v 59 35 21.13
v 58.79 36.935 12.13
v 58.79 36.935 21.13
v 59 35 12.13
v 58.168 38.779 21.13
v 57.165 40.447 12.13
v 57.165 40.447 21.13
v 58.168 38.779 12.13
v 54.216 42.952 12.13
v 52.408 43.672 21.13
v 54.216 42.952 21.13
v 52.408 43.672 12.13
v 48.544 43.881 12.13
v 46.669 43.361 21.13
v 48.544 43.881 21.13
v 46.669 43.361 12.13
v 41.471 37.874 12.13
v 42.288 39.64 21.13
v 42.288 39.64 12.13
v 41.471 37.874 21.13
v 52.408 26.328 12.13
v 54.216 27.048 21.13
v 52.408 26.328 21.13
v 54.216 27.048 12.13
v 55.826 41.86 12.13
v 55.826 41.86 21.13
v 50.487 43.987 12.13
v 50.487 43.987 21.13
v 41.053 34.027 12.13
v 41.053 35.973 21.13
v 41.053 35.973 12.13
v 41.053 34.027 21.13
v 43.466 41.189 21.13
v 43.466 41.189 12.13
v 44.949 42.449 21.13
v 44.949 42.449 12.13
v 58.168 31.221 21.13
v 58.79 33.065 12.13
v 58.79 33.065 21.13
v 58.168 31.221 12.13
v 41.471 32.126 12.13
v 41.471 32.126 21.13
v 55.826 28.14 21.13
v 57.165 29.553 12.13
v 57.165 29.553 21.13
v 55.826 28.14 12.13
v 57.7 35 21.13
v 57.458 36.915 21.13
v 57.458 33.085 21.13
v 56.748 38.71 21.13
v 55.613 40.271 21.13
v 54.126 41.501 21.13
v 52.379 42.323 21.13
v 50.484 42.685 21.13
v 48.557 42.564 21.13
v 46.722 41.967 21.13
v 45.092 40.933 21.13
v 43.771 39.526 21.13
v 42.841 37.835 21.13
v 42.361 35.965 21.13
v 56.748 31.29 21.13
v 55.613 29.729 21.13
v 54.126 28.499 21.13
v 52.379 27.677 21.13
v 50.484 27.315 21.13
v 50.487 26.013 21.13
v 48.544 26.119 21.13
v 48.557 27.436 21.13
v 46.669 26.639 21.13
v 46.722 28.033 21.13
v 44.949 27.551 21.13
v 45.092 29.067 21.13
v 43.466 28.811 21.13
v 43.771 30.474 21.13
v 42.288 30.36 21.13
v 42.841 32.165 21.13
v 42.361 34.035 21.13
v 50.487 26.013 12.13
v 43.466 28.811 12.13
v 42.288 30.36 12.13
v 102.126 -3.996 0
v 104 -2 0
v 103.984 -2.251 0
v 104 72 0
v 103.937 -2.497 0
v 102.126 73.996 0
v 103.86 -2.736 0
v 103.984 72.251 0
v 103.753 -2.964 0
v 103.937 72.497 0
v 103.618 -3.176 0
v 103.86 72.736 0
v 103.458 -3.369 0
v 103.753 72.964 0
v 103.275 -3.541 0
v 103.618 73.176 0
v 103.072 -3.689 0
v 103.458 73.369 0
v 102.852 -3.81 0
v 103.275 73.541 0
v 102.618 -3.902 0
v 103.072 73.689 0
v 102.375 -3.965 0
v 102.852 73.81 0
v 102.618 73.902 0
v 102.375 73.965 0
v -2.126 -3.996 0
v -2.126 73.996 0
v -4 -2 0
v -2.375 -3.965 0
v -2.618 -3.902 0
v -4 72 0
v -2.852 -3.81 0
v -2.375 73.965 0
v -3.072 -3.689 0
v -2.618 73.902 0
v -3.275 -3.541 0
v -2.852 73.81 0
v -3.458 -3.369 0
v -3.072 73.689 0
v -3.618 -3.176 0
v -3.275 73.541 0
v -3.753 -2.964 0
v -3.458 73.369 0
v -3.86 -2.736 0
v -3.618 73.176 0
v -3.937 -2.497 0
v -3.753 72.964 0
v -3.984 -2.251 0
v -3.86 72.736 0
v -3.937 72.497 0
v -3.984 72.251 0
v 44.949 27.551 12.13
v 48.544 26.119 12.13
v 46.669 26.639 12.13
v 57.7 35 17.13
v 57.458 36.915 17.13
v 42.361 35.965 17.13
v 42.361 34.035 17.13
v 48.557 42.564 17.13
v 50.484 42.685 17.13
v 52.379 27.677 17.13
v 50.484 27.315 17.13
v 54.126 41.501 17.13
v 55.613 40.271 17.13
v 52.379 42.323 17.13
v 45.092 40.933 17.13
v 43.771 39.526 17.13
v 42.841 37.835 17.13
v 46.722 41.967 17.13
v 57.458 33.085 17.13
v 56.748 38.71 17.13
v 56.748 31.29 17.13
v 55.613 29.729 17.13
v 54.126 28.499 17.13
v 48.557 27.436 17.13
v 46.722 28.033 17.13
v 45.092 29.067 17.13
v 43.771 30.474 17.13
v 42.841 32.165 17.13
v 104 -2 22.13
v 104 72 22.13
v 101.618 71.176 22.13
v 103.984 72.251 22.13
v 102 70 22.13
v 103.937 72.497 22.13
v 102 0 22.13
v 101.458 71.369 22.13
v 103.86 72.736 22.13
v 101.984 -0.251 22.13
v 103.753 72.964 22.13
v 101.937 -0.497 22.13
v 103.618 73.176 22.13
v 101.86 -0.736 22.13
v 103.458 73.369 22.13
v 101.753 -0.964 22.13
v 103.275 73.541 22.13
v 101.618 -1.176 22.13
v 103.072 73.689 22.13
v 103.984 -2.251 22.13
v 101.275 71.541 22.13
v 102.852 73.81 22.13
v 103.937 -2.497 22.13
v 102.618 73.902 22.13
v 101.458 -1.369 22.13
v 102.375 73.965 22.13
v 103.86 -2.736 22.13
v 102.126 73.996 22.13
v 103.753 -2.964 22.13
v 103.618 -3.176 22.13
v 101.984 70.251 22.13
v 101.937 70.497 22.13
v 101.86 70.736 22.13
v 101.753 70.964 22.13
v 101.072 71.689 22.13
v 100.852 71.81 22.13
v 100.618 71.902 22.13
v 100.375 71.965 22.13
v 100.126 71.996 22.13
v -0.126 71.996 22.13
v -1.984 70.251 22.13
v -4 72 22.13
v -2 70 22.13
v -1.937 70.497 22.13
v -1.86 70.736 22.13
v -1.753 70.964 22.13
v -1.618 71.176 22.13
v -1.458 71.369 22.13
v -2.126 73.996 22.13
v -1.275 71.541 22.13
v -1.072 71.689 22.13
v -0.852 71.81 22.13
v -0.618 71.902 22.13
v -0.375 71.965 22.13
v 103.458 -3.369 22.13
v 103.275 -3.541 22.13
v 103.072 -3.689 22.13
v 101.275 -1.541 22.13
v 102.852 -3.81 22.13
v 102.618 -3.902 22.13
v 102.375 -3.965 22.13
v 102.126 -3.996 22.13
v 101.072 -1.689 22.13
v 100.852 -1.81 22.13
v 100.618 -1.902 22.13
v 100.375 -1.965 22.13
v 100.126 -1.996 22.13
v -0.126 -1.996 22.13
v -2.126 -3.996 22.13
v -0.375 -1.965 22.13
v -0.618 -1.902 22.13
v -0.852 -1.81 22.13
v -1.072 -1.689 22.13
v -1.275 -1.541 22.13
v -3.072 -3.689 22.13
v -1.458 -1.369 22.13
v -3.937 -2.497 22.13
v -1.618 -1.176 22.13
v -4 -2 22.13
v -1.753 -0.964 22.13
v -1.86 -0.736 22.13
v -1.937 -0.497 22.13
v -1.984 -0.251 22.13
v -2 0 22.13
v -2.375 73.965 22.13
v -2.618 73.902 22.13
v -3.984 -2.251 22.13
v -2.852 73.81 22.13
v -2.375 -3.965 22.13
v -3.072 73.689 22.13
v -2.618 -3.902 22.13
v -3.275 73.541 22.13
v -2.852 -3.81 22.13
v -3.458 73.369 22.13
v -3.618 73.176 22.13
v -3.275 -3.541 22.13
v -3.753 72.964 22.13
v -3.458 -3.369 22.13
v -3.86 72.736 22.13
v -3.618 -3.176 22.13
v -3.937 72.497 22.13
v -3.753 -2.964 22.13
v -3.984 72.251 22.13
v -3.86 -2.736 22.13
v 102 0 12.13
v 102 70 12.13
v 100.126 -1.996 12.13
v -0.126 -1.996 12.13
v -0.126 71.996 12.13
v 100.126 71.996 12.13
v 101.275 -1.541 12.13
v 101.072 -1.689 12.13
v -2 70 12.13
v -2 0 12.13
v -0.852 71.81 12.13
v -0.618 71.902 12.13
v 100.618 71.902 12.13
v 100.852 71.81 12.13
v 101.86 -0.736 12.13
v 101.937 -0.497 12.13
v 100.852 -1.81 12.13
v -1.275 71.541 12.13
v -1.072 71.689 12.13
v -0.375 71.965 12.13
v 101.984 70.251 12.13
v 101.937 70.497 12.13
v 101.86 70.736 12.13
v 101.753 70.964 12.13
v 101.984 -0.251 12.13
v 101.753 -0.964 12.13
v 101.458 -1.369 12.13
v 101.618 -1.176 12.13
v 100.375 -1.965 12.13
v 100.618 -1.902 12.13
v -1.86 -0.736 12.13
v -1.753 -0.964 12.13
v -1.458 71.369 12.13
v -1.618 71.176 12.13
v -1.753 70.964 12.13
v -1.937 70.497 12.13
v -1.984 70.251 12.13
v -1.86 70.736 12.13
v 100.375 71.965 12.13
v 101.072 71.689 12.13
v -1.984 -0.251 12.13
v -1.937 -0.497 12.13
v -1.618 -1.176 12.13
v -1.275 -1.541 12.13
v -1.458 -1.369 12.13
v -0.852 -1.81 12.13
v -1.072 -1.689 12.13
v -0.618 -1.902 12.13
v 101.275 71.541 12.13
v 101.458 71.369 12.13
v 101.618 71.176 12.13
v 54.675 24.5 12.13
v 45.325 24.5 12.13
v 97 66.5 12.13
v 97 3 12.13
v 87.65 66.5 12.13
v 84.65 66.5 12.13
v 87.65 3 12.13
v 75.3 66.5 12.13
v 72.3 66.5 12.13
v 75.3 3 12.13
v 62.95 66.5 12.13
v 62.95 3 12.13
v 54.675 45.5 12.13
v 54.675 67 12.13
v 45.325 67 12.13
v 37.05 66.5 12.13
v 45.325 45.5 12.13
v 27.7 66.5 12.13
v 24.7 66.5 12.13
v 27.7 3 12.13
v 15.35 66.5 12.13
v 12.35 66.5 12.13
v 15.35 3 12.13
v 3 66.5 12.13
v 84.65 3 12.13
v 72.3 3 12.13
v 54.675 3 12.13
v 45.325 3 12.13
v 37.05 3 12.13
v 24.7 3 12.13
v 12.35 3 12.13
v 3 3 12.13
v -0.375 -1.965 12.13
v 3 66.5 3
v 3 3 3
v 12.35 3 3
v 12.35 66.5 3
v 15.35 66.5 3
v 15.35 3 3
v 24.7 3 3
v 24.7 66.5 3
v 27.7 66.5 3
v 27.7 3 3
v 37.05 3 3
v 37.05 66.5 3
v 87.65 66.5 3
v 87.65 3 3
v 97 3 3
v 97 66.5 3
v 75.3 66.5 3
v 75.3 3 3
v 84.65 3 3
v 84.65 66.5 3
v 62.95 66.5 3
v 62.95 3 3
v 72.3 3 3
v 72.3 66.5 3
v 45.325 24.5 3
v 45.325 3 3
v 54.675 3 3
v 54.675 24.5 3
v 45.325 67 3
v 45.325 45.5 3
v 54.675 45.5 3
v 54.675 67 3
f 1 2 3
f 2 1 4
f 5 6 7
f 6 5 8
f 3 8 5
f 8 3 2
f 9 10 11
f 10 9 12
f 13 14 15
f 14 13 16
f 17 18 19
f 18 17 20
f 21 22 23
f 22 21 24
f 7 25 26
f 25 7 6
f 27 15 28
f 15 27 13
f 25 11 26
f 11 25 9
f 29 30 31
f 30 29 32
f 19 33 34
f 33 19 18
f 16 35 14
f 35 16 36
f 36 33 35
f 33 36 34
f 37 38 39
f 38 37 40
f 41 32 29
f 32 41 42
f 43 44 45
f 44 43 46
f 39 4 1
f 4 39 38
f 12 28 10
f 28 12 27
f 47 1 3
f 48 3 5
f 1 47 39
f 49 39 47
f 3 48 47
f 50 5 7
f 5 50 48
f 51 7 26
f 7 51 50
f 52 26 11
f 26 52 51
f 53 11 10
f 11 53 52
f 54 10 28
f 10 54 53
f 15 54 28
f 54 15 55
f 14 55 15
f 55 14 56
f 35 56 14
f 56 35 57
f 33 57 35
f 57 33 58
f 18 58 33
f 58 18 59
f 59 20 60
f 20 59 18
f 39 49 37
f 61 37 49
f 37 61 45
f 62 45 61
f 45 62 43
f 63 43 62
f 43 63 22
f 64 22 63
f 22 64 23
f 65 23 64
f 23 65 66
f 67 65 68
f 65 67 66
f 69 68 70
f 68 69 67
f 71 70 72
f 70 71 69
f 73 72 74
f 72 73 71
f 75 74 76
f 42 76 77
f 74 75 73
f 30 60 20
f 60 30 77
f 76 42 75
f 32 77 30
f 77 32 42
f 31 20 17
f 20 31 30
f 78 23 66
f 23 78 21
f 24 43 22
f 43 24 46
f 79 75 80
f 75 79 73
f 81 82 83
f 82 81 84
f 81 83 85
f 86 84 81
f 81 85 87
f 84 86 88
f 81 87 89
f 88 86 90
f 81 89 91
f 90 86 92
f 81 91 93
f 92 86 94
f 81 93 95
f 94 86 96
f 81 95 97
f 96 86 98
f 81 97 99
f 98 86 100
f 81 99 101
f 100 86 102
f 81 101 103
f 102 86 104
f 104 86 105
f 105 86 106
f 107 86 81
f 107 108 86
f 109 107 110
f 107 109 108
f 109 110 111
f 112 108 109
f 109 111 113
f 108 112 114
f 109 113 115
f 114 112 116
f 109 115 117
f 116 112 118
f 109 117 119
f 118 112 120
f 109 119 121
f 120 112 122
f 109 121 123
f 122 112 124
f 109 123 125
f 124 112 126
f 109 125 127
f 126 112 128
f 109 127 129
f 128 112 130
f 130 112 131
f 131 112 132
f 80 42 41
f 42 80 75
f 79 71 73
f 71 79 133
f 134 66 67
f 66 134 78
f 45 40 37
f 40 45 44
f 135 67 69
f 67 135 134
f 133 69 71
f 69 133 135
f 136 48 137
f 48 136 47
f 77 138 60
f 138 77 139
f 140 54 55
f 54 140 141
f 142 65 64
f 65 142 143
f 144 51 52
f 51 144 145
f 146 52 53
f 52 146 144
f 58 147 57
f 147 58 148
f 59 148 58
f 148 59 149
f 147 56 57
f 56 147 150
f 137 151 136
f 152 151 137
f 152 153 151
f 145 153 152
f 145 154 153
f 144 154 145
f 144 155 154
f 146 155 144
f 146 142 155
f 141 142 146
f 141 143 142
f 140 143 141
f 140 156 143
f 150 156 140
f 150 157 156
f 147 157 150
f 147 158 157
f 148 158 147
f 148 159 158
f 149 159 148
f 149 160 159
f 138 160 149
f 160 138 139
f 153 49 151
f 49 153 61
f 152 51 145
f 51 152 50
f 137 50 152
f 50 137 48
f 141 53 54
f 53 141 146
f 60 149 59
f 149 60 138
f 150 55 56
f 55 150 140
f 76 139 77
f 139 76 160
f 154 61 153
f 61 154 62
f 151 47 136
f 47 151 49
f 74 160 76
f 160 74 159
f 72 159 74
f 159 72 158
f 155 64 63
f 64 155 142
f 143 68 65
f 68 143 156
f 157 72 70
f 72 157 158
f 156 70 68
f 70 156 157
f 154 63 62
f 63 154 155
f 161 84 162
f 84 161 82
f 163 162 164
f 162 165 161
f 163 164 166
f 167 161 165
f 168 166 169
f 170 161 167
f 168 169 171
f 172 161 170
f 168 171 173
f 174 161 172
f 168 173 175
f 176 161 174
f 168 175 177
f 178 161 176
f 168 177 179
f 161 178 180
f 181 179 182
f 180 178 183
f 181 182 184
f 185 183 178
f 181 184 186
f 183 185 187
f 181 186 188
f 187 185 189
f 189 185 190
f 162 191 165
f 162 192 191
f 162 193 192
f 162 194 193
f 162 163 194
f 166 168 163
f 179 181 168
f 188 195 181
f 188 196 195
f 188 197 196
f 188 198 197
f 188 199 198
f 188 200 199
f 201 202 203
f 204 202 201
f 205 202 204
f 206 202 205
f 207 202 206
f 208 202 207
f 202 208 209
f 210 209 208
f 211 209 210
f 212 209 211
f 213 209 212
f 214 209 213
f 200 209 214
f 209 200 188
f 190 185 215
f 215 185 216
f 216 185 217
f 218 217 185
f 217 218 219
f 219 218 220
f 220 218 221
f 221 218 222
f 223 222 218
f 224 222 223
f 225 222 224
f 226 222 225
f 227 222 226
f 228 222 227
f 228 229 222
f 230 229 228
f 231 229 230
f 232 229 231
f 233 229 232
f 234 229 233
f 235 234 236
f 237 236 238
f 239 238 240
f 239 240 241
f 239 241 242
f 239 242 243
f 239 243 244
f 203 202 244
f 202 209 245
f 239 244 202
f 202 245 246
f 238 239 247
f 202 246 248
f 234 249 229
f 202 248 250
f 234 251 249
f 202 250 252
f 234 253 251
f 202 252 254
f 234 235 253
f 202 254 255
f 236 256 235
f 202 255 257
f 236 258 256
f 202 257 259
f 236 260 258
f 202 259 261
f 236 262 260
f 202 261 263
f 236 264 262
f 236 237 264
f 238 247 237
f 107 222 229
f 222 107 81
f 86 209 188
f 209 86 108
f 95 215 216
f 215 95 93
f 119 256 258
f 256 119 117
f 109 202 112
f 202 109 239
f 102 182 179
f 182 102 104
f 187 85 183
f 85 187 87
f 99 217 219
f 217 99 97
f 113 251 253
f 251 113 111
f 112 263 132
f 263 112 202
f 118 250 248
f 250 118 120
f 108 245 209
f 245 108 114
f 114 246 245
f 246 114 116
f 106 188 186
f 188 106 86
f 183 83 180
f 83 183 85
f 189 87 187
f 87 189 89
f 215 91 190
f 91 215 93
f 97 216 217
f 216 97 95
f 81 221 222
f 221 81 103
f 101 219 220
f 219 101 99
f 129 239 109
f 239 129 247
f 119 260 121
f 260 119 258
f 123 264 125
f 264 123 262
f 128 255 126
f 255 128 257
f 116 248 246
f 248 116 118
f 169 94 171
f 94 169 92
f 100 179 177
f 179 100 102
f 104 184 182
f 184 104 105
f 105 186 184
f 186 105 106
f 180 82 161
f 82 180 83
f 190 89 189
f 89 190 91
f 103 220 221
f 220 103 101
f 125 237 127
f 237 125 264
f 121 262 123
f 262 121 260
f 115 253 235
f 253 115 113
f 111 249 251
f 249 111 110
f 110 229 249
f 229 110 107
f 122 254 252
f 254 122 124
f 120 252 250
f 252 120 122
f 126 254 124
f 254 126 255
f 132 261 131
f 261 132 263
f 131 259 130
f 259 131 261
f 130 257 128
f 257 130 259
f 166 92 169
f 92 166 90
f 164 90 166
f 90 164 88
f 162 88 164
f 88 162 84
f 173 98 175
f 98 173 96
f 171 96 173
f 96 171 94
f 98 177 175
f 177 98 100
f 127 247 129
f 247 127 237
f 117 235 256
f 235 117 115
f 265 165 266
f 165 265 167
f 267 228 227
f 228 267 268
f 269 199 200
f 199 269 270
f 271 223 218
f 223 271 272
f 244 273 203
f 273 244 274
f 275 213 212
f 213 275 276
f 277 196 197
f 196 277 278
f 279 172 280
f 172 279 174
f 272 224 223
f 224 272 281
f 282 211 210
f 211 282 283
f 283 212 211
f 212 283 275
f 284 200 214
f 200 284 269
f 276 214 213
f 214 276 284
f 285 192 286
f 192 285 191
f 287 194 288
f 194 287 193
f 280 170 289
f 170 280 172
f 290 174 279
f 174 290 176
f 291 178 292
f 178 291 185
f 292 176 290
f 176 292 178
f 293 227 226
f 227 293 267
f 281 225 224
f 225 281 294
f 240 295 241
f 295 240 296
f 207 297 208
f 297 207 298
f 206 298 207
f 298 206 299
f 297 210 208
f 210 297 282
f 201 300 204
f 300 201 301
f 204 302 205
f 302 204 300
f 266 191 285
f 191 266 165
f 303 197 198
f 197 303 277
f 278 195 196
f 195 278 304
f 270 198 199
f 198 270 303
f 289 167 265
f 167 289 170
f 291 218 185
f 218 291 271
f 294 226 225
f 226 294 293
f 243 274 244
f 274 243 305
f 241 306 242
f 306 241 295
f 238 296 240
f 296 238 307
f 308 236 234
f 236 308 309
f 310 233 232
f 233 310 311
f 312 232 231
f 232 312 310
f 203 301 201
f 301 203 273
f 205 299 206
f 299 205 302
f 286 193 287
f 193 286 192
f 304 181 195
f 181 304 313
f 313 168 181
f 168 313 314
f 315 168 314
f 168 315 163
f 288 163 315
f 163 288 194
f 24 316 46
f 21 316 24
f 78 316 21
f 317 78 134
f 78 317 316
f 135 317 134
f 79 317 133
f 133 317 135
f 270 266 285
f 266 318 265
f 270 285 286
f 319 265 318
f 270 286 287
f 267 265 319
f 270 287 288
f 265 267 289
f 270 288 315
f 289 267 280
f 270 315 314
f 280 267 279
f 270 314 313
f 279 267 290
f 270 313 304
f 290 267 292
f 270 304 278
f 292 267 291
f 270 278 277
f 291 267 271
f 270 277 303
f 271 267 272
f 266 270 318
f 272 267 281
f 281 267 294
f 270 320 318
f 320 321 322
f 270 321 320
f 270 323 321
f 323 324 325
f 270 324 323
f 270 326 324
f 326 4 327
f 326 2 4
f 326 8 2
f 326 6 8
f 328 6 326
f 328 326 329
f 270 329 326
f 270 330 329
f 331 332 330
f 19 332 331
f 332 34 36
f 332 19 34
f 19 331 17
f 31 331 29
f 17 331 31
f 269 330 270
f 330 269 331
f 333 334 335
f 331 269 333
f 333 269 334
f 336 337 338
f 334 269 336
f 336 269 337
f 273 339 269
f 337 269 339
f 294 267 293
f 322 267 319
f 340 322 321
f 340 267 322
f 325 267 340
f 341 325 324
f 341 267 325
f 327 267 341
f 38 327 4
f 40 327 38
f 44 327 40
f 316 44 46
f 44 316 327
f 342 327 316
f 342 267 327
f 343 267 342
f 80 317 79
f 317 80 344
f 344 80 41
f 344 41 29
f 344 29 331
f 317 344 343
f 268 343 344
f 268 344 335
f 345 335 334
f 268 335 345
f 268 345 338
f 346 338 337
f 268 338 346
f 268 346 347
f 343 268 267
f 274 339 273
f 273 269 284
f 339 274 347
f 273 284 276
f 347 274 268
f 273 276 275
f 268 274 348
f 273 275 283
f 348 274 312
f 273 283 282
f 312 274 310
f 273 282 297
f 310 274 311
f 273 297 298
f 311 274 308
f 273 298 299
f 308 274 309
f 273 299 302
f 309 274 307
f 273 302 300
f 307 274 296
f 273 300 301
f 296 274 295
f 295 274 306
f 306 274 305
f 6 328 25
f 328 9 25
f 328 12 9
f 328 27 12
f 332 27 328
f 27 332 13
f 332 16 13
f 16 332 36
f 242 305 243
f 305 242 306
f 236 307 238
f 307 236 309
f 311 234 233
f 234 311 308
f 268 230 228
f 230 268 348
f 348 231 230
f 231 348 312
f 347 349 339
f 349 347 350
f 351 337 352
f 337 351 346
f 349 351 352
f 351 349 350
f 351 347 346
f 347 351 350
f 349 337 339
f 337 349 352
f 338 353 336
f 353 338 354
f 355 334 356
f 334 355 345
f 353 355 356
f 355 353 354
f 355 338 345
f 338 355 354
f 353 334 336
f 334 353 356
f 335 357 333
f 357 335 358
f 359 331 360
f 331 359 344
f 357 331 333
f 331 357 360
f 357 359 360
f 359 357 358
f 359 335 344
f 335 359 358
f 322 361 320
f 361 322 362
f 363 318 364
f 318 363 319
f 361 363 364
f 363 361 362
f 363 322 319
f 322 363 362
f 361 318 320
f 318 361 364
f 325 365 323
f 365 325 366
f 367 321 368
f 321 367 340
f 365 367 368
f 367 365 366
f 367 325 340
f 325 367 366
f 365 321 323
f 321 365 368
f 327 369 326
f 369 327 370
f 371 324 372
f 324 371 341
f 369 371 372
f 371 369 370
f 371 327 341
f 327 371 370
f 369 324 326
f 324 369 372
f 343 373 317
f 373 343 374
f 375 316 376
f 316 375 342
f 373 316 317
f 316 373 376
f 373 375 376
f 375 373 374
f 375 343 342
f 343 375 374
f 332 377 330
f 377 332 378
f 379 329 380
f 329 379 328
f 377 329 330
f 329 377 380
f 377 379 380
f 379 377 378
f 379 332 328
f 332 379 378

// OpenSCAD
woodenCubeWidth = 10.4 + .1;
woodenCubeLength = 9.05 + .3;
//TODO: !!!!!!!!!!!!!!!!!Fix this
woodenCubeHeight = 17.93 + .2; 

protrusionHeight = 9;

length = 100;
width = 70;
floorHeight = 3;
height = (woodenCubeHeight - protrusionHeight) + floorHeight;
totalHeight = height + protrusionHeight;
magnetPadding = 15;
magnetBaseOuterDiameter = 18;
magnetBaseInnerDiameter = 15.4;
magnetHeight = 4.0;

woodenCubeBoxHeight = woodenCubeHeight - protrusionHeight;
woodenCubeBoxLength = woodenCubeLength;

wallThickness = 3;
lipThickness = 2;

woodenCubeCount = 6;
shortWoodenCubeCount = 2;
woodenCubeBoxWidth = woodenCubeWidth * woodenCubeCount + .5;
shortWoodenCubeBoxWidth = woodenCubeWidth * shortWoodenCubeCount + .5;

union() {    
    difference() {    
        $fn=50;
            difference(){
                translate([-lipThickness, -lipThickness, 0])
                    minkowski()
                    {
                        cube([length + lipThickness * 2, width + lipThickness * 2, totalHeight]);
                        cylinder(r=2,h=1);
                    }
                    
                translate([0, 0, height])
                    minkowski()
                    {
                        cube([length, width, totalHeight - height]);
                        cylinder(r=2,h=1);
                    }
                
                translate([wallThickness, wallThickness, 0])
                    WoodenCubeBox();
                translate([wallThickness * 2 + woodenCubeLength, wallThickness, 0])
                    WoodenCubeBox();
                translate([wallThickness * 3 + woodenCubeLength * 2, wallThickness, 0])
                    WoodenCubeBox();
                
                translate([length - (wallThickness + woodenCubeLength), wallThickness, 0])
                    WoodenCubeBox();
                translate([length - (wallThickness * 2 + woodenCubeLength * 2), wallThickness, 0])
                    WoodenCubeBox();
                translate([length - (wallThickness * 3 + woodenCubeLength * 3), wallThickness, 0])
                    WoodenCubeBox();
                
                translate([length/2 - woodenCubeLength/2, wallThickness, 0])
                    ShortWoodenCubeBox();
                translate([length/2 - woodenCubeLength/2, width - (wallThickness + shortWoodenCubeBoxWidth), 0])
                    ShortWoodenCubeBox();
            }

    }
    difference() {
        translate([length/2, width/2, 0])
            cylinder(height + protrusionHeight, d=magnetBaseOuterDiameter);
        translate([length/2, width/2, height + protrusionHeight - magnetHeight])
             cylinder(magnetHeight, d=magnetBaseInnerDiameter);
    }
}
    
    

module WoodenCubeBox()
{

    translate([0, 0, height - woodenCubeBoxHeight])
        cube([woodenCubeBoxLength, woodenCubeBoxWidth, woodenCubeBoxHeight]);

}


module ShortWoodenCubeBox()
{

    translate([0, 0, height - woodenCubeBoxHeight])
        cube([woodenCubeBoxLength, shortWoodenCubeBoxWidth, woodenCubeBoxHeight]);

}
